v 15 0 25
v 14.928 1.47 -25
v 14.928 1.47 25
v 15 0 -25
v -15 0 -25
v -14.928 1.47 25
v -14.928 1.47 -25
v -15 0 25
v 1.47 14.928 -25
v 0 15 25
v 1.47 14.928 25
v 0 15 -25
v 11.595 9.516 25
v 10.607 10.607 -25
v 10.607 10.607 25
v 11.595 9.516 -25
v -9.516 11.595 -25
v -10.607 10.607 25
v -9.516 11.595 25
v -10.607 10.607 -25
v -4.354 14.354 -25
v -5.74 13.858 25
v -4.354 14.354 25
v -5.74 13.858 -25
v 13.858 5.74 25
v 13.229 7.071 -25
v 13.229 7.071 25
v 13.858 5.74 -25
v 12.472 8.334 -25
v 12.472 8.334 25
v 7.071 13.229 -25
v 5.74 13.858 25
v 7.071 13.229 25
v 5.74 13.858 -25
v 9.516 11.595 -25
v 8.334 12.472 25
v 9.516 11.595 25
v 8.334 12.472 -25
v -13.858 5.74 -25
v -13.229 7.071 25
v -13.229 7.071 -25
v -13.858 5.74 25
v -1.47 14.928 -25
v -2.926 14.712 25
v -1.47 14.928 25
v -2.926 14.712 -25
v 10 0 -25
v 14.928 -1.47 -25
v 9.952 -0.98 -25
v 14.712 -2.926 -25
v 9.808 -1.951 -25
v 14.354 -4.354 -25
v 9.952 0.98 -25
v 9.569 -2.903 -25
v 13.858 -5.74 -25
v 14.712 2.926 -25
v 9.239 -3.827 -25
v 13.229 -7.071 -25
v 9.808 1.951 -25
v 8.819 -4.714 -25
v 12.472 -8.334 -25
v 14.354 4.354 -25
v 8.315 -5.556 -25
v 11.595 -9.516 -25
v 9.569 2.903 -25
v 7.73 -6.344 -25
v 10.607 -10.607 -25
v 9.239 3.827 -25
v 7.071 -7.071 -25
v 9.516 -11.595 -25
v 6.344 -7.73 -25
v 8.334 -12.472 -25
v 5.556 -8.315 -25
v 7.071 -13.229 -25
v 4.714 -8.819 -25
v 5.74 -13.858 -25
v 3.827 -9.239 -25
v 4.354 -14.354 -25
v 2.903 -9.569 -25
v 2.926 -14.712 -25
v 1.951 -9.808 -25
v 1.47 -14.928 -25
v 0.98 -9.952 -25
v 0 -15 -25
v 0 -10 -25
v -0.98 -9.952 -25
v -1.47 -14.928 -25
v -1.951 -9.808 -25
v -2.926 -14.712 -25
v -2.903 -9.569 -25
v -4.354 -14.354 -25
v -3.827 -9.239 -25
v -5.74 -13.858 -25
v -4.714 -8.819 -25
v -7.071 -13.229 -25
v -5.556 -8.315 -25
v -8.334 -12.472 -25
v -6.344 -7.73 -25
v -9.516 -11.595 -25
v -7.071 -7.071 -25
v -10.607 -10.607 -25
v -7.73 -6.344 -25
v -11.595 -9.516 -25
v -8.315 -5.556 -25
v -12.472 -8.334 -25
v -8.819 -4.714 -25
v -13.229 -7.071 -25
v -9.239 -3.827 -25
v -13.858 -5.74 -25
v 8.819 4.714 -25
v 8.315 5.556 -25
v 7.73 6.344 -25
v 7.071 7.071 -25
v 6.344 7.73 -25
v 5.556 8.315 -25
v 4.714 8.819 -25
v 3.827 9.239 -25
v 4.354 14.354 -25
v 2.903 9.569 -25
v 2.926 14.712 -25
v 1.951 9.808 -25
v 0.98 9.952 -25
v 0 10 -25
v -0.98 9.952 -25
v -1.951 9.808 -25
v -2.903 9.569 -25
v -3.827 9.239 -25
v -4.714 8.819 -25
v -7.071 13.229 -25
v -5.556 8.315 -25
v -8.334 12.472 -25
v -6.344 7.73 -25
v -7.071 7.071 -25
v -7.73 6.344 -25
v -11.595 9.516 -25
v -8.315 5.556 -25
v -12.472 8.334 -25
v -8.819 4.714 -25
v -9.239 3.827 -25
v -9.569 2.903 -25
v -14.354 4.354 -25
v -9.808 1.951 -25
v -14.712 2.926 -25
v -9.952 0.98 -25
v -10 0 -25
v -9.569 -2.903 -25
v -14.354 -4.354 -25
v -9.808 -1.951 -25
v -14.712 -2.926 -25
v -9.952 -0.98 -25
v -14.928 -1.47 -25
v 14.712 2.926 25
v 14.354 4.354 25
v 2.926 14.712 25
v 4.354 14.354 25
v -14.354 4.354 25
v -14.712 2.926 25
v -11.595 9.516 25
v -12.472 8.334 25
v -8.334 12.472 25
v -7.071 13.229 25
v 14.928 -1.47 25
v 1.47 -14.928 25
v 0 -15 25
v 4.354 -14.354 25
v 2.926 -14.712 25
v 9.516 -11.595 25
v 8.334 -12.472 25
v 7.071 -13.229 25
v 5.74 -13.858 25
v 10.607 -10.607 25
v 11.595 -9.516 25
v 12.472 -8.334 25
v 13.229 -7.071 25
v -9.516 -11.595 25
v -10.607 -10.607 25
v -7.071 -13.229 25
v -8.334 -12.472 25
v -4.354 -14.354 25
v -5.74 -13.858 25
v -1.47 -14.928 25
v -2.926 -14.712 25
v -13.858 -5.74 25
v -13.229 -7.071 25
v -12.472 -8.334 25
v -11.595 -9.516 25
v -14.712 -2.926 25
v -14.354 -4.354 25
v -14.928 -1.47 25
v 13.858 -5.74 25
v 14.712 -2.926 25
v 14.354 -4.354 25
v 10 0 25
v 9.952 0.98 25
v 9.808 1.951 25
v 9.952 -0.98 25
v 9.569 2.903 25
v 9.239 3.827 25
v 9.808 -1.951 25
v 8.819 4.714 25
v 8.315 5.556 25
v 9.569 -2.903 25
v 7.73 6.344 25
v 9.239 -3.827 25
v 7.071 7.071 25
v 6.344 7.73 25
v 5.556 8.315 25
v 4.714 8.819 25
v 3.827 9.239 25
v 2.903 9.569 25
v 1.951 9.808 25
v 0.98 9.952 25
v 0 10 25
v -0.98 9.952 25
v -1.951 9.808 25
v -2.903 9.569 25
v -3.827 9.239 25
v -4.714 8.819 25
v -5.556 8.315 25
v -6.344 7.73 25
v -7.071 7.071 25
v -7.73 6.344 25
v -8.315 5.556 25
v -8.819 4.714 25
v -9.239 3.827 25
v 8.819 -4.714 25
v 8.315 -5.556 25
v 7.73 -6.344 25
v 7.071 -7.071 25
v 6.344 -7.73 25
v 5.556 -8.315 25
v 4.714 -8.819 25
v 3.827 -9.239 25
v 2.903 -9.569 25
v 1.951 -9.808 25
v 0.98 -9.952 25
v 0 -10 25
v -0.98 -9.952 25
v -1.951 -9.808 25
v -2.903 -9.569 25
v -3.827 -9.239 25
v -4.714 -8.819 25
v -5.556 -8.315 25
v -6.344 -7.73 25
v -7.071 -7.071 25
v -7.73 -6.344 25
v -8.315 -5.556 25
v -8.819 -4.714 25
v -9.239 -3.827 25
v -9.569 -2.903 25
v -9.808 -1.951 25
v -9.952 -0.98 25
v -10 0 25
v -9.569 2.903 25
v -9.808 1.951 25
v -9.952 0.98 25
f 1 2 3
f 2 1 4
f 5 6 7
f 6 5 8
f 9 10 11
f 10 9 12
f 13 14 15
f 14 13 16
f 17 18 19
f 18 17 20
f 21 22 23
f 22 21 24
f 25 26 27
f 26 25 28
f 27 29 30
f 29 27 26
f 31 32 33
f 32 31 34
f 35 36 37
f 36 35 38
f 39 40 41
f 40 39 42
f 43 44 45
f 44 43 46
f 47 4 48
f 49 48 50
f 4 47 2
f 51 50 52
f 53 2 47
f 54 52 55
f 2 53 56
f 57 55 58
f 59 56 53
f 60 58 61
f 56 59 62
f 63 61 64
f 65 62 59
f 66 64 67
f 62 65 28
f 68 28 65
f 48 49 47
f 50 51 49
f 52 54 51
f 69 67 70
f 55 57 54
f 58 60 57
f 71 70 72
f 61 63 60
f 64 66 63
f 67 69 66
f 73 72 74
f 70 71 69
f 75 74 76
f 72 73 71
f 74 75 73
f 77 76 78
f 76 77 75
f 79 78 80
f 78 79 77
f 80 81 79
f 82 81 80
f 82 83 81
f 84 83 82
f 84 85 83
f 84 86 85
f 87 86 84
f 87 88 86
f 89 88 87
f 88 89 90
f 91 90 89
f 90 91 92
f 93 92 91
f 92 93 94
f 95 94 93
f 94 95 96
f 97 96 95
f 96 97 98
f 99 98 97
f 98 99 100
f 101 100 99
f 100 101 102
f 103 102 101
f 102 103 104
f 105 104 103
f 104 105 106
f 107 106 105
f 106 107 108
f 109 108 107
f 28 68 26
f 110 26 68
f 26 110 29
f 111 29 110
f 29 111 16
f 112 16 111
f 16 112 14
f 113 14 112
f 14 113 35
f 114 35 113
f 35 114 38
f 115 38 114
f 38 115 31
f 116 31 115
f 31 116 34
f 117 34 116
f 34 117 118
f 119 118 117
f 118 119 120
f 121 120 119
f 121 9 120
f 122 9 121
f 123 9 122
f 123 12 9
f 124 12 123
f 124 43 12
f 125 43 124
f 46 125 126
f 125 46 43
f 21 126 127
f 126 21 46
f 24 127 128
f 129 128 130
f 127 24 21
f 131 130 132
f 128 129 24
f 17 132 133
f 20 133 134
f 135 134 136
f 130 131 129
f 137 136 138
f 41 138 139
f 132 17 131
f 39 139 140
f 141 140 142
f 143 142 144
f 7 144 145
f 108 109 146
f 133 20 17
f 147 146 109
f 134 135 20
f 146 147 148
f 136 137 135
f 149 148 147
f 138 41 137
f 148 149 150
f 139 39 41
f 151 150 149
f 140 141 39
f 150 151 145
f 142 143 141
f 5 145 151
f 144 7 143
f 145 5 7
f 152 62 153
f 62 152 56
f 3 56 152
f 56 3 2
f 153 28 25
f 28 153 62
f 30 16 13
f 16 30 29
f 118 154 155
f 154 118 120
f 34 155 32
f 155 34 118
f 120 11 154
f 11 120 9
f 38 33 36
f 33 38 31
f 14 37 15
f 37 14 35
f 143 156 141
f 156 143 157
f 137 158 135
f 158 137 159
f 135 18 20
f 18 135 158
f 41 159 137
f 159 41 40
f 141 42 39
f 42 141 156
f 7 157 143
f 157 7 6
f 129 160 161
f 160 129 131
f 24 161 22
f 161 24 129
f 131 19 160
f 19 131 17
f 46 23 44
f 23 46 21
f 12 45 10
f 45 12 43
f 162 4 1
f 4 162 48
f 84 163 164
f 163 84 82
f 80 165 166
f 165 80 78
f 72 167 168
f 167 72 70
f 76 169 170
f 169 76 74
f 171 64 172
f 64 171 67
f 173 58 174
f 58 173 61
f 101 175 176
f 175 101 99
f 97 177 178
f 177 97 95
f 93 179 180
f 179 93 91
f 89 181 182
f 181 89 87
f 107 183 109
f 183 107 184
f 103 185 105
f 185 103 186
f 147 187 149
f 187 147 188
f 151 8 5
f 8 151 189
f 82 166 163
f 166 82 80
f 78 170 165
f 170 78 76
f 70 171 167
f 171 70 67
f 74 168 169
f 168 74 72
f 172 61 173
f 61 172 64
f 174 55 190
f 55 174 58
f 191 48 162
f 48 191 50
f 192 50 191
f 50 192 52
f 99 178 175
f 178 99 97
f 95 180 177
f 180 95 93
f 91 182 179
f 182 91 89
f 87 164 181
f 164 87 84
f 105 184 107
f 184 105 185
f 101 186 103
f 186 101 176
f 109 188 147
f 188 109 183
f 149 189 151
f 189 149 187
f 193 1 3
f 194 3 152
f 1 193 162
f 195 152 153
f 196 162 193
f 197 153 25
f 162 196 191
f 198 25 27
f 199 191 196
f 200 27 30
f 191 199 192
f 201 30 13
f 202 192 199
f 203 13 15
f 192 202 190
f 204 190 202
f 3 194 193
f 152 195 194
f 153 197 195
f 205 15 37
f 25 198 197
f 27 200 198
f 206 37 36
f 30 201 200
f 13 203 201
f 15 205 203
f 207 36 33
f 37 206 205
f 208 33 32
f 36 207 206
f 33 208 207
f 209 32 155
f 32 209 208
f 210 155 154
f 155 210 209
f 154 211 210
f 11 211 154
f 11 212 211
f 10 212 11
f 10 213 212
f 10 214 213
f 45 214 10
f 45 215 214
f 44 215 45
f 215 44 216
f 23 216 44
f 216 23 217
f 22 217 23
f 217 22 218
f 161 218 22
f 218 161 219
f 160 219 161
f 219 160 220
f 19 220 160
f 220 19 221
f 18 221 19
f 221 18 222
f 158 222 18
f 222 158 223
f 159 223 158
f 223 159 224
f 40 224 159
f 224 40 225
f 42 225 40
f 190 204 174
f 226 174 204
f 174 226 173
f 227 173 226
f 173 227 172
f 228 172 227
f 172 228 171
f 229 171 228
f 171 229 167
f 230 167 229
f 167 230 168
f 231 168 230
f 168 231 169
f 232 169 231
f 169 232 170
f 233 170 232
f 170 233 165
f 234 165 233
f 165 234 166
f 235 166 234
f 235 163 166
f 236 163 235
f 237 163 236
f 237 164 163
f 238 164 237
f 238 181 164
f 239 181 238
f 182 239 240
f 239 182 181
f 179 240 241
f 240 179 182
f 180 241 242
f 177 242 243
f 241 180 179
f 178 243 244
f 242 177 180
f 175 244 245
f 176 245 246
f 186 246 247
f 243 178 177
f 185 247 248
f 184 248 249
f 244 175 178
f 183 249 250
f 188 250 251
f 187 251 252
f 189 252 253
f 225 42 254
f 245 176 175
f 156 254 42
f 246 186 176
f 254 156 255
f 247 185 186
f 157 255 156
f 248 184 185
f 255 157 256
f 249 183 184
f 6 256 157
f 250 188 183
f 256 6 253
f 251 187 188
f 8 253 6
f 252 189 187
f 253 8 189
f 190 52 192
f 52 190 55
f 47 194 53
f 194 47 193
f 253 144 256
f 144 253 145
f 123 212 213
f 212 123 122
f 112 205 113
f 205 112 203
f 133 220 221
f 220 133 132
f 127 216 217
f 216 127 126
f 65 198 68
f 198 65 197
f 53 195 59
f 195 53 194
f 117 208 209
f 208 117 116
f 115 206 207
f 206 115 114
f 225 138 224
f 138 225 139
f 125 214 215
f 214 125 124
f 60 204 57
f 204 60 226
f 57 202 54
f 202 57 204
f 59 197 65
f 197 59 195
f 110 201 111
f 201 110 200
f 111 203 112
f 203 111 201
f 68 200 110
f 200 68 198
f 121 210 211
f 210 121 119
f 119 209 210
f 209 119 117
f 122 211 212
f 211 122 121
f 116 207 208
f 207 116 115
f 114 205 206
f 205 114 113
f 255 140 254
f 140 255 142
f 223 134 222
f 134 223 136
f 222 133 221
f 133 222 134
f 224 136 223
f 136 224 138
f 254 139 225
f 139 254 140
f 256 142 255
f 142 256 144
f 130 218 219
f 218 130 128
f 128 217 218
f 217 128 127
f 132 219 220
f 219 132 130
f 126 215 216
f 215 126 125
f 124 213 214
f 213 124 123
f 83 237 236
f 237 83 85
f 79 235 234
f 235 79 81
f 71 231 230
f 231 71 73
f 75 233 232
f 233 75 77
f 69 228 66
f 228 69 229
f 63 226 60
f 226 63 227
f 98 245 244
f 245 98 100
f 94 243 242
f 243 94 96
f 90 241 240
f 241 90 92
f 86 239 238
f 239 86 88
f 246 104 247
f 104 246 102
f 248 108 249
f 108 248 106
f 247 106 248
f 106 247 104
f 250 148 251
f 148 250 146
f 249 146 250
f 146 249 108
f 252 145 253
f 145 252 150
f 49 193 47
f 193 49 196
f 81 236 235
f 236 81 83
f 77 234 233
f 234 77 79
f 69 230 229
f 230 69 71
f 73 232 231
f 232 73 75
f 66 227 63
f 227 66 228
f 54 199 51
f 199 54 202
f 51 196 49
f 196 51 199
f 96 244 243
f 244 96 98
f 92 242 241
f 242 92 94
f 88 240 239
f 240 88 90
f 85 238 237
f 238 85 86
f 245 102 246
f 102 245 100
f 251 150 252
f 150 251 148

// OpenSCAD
module cylindrical_tube() {
  difference() {
    cylinder(h = 50, r = 15, $fn = 64, center = true);
    cylinder(h = 50, r = 10, $fn = 64, center = true);
  }
}

cylindrical_tube();
